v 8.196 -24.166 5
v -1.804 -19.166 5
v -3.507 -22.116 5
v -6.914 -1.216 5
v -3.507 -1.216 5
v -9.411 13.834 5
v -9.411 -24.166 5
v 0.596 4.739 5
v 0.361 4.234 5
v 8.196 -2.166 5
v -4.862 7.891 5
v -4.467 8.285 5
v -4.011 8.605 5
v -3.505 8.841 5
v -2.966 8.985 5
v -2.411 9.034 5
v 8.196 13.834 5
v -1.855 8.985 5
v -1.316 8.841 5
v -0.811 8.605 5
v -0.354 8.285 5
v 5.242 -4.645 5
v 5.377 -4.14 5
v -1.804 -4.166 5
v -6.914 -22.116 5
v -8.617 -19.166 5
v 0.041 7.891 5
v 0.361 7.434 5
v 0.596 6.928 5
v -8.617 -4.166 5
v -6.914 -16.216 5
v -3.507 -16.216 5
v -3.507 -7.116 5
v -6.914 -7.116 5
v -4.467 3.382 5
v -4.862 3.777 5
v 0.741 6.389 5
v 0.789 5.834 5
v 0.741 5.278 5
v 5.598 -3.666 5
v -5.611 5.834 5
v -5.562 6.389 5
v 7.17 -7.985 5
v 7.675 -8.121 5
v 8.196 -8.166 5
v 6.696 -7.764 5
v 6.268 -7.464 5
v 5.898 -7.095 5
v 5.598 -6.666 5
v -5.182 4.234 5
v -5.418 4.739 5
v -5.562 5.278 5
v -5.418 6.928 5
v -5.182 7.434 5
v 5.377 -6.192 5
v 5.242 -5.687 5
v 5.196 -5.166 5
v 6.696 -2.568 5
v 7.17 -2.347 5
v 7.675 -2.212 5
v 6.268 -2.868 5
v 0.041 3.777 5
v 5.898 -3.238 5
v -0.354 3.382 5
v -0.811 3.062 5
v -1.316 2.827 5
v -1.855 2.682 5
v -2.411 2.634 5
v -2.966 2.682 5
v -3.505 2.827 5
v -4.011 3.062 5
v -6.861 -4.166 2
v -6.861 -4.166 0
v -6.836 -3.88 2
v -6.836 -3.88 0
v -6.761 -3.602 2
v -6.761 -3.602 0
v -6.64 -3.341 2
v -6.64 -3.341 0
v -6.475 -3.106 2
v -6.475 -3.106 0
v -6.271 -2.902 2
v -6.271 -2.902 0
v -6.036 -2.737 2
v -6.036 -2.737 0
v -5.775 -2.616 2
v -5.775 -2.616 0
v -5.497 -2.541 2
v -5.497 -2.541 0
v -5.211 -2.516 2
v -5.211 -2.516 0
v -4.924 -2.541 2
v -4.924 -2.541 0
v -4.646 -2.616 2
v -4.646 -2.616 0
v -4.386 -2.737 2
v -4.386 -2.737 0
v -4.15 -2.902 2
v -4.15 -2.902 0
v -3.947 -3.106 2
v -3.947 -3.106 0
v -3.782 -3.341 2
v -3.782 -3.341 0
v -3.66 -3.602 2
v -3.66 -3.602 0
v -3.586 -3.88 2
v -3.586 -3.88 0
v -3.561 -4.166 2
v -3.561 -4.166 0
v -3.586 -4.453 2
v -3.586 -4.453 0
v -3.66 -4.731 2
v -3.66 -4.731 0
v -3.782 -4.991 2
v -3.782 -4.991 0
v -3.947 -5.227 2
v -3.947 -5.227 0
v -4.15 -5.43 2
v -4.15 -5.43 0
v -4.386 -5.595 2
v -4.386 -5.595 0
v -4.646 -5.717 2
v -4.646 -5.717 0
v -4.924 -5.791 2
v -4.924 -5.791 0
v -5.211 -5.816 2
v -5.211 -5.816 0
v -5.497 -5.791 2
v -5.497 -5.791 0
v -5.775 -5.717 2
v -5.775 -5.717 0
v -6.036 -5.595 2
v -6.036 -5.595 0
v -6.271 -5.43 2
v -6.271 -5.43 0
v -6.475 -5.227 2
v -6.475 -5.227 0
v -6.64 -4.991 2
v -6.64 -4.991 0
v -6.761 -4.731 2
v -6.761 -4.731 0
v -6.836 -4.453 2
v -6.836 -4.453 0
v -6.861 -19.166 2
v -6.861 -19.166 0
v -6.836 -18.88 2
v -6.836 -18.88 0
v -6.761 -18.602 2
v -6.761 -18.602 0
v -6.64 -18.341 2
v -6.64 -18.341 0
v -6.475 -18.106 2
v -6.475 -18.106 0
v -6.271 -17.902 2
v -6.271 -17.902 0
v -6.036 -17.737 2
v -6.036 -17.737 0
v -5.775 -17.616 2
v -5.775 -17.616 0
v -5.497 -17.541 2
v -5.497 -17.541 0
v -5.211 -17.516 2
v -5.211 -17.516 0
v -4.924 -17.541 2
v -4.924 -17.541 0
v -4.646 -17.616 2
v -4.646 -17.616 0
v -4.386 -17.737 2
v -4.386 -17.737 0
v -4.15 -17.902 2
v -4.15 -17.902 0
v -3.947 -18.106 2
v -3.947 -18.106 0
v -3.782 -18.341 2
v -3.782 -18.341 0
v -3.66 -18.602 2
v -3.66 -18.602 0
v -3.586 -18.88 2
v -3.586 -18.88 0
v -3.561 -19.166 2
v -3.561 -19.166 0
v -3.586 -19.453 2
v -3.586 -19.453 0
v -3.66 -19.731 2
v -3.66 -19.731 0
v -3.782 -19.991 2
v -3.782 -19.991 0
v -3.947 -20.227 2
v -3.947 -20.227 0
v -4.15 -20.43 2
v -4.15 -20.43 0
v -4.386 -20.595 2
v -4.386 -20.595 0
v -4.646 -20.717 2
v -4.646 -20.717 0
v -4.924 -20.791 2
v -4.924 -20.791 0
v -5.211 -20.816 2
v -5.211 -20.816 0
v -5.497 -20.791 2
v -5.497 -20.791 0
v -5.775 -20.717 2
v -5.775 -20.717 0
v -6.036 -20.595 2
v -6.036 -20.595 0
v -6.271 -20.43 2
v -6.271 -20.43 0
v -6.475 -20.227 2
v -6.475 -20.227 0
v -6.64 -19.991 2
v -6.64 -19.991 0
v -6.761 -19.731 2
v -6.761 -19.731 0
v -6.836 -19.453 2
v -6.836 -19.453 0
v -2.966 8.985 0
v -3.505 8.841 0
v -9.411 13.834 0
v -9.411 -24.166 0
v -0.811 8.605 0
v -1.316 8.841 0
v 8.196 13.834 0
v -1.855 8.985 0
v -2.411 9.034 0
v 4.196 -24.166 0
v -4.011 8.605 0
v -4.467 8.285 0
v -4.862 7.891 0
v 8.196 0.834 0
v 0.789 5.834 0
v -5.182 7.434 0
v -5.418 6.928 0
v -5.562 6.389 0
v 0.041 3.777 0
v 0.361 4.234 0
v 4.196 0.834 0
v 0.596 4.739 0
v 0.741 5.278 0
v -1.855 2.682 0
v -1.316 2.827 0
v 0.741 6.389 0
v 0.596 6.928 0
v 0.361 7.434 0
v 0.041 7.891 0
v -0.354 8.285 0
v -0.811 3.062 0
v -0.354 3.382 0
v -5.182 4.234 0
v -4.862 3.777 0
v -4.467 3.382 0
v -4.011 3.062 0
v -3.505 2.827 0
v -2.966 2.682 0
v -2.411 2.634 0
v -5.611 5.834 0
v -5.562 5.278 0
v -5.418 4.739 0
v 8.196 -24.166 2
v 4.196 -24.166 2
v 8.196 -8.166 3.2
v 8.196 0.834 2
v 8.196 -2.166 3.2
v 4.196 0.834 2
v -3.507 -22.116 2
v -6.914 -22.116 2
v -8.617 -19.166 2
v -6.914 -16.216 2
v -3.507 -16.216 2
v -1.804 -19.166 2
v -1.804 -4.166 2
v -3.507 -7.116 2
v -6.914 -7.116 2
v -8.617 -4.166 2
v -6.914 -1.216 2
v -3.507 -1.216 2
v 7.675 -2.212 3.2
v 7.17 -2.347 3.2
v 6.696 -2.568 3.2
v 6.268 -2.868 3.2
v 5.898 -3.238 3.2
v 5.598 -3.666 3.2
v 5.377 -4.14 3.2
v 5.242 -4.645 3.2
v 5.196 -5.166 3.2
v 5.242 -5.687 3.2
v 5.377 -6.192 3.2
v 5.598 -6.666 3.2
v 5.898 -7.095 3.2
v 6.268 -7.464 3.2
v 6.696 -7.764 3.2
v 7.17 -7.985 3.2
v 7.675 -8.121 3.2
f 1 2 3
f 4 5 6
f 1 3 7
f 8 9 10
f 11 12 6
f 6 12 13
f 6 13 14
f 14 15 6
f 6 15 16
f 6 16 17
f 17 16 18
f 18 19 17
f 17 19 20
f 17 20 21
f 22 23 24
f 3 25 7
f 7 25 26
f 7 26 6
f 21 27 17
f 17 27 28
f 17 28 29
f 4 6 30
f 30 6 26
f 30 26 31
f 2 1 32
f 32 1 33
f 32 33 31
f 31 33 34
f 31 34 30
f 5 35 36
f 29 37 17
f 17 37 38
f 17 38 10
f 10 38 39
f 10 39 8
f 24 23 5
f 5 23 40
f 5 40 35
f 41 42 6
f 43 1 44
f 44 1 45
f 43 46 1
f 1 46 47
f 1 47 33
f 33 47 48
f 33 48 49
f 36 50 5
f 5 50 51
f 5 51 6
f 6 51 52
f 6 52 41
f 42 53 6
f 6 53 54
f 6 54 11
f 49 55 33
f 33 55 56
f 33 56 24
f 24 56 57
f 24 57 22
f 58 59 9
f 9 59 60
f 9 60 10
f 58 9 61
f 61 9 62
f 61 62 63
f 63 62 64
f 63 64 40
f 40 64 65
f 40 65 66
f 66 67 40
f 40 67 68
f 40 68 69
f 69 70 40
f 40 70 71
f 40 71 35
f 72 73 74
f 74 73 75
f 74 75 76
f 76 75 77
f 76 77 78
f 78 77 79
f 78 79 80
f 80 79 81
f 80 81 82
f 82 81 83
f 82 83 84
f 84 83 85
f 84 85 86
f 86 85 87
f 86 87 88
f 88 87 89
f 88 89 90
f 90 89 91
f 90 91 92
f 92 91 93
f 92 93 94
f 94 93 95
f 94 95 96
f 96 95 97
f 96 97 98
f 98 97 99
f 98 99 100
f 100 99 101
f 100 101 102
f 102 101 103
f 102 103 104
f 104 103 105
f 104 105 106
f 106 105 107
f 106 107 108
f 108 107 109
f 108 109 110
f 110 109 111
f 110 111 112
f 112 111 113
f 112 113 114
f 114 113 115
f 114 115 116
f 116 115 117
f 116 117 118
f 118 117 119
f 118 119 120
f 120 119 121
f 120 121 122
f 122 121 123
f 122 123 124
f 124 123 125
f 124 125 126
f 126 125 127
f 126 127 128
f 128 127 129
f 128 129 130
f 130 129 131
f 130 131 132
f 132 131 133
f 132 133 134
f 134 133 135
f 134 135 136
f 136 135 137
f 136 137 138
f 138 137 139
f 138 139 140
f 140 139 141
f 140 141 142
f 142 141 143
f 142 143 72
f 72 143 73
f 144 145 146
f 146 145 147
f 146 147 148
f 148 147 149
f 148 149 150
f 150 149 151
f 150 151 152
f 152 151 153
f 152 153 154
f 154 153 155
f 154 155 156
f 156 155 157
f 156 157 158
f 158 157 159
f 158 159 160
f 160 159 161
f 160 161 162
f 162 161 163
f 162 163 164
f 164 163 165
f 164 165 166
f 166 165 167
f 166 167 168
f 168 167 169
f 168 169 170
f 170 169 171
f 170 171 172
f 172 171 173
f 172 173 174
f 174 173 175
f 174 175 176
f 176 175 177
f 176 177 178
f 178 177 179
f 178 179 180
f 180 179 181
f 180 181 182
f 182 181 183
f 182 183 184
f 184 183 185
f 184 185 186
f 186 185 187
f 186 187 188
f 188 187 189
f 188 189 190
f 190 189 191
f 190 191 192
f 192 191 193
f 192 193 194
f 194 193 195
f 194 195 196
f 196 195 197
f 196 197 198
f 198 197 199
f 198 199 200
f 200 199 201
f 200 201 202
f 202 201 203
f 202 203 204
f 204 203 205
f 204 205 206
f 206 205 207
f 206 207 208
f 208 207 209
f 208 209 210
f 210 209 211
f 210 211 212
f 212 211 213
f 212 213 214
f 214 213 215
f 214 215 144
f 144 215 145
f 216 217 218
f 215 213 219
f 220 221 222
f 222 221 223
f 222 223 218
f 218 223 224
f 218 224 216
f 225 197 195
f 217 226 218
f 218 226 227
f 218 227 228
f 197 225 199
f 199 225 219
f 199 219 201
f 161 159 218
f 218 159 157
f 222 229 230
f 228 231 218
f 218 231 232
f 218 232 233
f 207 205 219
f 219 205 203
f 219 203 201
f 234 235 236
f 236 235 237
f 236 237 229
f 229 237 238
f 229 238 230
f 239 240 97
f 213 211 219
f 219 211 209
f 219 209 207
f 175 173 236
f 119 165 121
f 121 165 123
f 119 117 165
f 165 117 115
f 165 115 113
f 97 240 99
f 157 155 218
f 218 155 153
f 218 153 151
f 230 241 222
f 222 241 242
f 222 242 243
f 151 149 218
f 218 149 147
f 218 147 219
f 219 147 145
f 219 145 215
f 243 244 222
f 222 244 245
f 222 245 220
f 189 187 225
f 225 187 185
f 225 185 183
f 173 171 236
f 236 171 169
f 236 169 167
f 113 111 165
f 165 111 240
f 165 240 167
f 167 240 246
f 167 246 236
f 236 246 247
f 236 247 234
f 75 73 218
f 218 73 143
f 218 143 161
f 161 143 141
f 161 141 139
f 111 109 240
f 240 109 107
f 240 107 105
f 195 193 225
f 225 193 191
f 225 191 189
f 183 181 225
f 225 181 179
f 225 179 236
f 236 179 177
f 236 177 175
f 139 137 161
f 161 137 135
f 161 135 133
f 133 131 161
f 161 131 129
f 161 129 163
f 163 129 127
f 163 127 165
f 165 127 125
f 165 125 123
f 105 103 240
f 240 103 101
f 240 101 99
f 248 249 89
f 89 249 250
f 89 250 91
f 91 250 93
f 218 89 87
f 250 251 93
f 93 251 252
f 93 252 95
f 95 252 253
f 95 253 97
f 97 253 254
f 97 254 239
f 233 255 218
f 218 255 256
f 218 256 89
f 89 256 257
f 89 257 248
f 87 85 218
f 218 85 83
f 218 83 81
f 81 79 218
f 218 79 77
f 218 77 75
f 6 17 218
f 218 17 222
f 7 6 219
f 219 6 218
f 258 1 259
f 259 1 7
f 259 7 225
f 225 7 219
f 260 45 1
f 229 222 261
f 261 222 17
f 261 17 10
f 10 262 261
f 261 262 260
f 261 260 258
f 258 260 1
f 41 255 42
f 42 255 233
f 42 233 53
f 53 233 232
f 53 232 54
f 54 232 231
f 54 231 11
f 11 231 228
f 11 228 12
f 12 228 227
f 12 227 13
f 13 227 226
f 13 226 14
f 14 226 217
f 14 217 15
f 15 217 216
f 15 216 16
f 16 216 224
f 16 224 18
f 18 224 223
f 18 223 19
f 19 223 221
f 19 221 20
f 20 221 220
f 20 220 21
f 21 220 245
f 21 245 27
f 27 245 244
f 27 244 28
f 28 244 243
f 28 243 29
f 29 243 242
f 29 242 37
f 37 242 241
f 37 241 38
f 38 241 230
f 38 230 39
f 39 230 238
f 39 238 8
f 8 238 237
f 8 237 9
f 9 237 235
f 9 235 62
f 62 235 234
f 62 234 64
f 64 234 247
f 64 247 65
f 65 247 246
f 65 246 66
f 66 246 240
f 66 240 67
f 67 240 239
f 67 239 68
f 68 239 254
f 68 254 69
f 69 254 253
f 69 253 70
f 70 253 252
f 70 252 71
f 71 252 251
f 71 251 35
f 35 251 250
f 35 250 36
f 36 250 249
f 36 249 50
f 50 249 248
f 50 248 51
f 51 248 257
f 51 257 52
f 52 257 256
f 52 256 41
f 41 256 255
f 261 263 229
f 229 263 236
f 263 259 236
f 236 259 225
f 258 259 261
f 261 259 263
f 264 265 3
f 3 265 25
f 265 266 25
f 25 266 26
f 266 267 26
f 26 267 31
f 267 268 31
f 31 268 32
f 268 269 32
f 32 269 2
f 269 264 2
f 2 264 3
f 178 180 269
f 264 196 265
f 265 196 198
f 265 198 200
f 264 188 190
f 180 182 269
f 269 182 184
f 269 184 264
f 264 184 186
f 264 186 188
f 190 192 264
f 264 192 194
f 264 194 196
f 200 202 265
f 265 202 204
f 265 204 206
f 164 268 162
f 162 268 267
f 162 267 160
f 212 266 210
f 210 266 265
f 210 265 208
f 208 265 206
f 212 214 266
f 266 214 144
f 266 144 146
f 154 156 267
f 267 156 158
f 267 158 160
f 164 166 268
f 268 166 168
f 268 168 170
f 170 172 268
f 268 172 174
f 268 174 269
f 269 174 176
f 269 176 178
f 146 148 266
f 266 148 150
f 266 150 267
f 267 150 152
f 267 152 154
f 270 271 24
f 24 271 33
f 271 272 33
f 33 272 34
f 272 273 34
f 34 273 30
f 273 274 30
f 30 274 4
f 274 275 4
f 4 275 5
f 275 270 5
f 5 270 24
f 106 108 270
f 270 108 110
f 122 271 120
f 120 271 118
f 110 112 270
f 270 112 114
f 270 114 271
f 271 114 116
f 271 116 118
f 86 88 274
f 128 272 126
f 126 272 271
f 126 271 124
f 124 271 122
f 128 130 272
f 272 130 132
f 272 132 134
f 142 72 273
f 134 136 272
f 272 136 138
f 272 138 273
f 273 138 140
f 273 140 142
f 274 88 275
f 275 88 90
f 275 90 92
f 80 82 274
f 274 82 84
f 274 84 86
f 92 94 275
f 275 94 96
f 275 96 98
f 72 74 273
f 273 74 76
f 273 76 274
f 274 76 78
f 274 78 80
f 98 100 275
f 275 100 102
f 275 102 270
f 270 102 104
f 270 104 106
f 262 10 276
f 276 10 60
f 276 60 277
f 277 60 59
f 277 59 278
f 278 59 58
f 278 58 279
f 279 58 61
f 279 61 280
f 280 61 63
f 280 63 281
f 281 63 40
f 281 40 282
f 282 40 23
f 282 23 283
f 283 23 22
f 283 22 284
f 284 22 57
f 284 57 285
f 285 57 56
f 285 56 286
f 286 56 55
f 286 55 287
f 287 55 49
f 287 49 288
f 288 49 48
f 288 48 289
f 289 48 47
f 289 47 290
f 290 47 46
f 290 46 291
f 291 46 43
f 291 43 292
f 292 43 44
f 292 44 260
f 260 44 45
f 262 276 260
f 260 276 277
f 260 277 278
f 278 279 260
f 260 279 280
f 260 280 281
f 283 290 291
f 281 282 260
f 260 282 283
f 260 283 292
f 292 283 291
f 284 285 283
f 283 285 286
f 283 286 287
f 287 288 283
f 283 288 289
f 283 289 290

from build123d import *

# Parameters (mm, degrees)
SKETCH1_W           = 17.606601718
SKETCH1_H           = 38
SKETCH1_R           = 3.2
SKETCH1_R_2         = 1.65
BOSS_EXTRUDE1_DEPTH = 5
CUT_EXTRUDE4_START  = -5
SKETCH4_6_W         = 4
SKETCH4_6_H         = 25
CUT_EXTRUDE4_DEPTH  = 2
CUT_EXTRUDE1_DEPTH  = 3
CUT_EXTRUDE5_DEPTH  = 1.8


with BuildPart() as part:
    # Sketch1 → Boss-Extrude1 (new body)
    with BuildSketch(Plane.XY):
        with Locations((-0.607278146, -5.166340893)):
            Rectangle(SKETCH1_W, SKETCH1_H)
        with Locations((-2.410579005, 5.833659107)):
            Circle(SKETCH1_R, mode=Mode.SUBTRACT)
        with Locations((-5.210579005, -4.166340893)):
            Circle(SKETCH1_R_2, mode=Mode.SUBTRACT)
        with Locations((-5.210579005, -19.166340893)):
            Circle(SKETCH1_R_2, mode=Mode.SUBTRACT)
    extrude(amount=BOSS_EXTRUDE1_DEPTH)

    # Sketch4<6> → Cut-Extrude4 (cut)
    with BuildSketch(Plane.XY.offset(5).offset(CUT_EXTRUDE4_START)):
        with Locations((6.196022713, -11.666340893)):
            Rectangle(SKETCH4_6_W, SKETCH4_6_H)
    extrude(amount=CUT_EXTRUDE4_DEPTH, mode=Mode.SUBTRACT)

    # Sketch4 → Cut-Extrude1 (cut)
    with BuildSketch(Plane.XY.offset(5)):
        Polygon((-3.50739571, -1.216340893), (-6.913762299, -1.216340893), (-8.616945593, -4.166340893), (-6.913762299, -7.116340893), (-3.50739571, -7.116340893), (-1.804212416, -4.166340893), align=None)
        Polygon((-1.804212416, -19.166340893), (-3.50739571, -22.116340893), (-6.913762299, -22.116340893), (-8.616945593, -19.166340893), (-6.913762299, -16.216340893), (-3.50739571, -16.216340893), align=None)
    extrude(amount=-CUT_EXTRUDE1_DEPTH, mode=Mode.SUBTRACT)

    # Sketch4<7> → Cut-Extrude5 (cut)
    with BuildSketch(Plane.XY.offset(5)):
        with BuildLine():
            Line((8.196022713, -2.166340893), (8.196022713, -8.166340893))
            ThreePointArc((8.196022713, -8.166340893), (5.196022713, -5.166340893), (8.196022713, -2.166340893))
        make_face()
    extrude(amount=-CUT_EXTRUDE5_DEPTH, mode=Mode.SUBTRACT)


solid = part.part
